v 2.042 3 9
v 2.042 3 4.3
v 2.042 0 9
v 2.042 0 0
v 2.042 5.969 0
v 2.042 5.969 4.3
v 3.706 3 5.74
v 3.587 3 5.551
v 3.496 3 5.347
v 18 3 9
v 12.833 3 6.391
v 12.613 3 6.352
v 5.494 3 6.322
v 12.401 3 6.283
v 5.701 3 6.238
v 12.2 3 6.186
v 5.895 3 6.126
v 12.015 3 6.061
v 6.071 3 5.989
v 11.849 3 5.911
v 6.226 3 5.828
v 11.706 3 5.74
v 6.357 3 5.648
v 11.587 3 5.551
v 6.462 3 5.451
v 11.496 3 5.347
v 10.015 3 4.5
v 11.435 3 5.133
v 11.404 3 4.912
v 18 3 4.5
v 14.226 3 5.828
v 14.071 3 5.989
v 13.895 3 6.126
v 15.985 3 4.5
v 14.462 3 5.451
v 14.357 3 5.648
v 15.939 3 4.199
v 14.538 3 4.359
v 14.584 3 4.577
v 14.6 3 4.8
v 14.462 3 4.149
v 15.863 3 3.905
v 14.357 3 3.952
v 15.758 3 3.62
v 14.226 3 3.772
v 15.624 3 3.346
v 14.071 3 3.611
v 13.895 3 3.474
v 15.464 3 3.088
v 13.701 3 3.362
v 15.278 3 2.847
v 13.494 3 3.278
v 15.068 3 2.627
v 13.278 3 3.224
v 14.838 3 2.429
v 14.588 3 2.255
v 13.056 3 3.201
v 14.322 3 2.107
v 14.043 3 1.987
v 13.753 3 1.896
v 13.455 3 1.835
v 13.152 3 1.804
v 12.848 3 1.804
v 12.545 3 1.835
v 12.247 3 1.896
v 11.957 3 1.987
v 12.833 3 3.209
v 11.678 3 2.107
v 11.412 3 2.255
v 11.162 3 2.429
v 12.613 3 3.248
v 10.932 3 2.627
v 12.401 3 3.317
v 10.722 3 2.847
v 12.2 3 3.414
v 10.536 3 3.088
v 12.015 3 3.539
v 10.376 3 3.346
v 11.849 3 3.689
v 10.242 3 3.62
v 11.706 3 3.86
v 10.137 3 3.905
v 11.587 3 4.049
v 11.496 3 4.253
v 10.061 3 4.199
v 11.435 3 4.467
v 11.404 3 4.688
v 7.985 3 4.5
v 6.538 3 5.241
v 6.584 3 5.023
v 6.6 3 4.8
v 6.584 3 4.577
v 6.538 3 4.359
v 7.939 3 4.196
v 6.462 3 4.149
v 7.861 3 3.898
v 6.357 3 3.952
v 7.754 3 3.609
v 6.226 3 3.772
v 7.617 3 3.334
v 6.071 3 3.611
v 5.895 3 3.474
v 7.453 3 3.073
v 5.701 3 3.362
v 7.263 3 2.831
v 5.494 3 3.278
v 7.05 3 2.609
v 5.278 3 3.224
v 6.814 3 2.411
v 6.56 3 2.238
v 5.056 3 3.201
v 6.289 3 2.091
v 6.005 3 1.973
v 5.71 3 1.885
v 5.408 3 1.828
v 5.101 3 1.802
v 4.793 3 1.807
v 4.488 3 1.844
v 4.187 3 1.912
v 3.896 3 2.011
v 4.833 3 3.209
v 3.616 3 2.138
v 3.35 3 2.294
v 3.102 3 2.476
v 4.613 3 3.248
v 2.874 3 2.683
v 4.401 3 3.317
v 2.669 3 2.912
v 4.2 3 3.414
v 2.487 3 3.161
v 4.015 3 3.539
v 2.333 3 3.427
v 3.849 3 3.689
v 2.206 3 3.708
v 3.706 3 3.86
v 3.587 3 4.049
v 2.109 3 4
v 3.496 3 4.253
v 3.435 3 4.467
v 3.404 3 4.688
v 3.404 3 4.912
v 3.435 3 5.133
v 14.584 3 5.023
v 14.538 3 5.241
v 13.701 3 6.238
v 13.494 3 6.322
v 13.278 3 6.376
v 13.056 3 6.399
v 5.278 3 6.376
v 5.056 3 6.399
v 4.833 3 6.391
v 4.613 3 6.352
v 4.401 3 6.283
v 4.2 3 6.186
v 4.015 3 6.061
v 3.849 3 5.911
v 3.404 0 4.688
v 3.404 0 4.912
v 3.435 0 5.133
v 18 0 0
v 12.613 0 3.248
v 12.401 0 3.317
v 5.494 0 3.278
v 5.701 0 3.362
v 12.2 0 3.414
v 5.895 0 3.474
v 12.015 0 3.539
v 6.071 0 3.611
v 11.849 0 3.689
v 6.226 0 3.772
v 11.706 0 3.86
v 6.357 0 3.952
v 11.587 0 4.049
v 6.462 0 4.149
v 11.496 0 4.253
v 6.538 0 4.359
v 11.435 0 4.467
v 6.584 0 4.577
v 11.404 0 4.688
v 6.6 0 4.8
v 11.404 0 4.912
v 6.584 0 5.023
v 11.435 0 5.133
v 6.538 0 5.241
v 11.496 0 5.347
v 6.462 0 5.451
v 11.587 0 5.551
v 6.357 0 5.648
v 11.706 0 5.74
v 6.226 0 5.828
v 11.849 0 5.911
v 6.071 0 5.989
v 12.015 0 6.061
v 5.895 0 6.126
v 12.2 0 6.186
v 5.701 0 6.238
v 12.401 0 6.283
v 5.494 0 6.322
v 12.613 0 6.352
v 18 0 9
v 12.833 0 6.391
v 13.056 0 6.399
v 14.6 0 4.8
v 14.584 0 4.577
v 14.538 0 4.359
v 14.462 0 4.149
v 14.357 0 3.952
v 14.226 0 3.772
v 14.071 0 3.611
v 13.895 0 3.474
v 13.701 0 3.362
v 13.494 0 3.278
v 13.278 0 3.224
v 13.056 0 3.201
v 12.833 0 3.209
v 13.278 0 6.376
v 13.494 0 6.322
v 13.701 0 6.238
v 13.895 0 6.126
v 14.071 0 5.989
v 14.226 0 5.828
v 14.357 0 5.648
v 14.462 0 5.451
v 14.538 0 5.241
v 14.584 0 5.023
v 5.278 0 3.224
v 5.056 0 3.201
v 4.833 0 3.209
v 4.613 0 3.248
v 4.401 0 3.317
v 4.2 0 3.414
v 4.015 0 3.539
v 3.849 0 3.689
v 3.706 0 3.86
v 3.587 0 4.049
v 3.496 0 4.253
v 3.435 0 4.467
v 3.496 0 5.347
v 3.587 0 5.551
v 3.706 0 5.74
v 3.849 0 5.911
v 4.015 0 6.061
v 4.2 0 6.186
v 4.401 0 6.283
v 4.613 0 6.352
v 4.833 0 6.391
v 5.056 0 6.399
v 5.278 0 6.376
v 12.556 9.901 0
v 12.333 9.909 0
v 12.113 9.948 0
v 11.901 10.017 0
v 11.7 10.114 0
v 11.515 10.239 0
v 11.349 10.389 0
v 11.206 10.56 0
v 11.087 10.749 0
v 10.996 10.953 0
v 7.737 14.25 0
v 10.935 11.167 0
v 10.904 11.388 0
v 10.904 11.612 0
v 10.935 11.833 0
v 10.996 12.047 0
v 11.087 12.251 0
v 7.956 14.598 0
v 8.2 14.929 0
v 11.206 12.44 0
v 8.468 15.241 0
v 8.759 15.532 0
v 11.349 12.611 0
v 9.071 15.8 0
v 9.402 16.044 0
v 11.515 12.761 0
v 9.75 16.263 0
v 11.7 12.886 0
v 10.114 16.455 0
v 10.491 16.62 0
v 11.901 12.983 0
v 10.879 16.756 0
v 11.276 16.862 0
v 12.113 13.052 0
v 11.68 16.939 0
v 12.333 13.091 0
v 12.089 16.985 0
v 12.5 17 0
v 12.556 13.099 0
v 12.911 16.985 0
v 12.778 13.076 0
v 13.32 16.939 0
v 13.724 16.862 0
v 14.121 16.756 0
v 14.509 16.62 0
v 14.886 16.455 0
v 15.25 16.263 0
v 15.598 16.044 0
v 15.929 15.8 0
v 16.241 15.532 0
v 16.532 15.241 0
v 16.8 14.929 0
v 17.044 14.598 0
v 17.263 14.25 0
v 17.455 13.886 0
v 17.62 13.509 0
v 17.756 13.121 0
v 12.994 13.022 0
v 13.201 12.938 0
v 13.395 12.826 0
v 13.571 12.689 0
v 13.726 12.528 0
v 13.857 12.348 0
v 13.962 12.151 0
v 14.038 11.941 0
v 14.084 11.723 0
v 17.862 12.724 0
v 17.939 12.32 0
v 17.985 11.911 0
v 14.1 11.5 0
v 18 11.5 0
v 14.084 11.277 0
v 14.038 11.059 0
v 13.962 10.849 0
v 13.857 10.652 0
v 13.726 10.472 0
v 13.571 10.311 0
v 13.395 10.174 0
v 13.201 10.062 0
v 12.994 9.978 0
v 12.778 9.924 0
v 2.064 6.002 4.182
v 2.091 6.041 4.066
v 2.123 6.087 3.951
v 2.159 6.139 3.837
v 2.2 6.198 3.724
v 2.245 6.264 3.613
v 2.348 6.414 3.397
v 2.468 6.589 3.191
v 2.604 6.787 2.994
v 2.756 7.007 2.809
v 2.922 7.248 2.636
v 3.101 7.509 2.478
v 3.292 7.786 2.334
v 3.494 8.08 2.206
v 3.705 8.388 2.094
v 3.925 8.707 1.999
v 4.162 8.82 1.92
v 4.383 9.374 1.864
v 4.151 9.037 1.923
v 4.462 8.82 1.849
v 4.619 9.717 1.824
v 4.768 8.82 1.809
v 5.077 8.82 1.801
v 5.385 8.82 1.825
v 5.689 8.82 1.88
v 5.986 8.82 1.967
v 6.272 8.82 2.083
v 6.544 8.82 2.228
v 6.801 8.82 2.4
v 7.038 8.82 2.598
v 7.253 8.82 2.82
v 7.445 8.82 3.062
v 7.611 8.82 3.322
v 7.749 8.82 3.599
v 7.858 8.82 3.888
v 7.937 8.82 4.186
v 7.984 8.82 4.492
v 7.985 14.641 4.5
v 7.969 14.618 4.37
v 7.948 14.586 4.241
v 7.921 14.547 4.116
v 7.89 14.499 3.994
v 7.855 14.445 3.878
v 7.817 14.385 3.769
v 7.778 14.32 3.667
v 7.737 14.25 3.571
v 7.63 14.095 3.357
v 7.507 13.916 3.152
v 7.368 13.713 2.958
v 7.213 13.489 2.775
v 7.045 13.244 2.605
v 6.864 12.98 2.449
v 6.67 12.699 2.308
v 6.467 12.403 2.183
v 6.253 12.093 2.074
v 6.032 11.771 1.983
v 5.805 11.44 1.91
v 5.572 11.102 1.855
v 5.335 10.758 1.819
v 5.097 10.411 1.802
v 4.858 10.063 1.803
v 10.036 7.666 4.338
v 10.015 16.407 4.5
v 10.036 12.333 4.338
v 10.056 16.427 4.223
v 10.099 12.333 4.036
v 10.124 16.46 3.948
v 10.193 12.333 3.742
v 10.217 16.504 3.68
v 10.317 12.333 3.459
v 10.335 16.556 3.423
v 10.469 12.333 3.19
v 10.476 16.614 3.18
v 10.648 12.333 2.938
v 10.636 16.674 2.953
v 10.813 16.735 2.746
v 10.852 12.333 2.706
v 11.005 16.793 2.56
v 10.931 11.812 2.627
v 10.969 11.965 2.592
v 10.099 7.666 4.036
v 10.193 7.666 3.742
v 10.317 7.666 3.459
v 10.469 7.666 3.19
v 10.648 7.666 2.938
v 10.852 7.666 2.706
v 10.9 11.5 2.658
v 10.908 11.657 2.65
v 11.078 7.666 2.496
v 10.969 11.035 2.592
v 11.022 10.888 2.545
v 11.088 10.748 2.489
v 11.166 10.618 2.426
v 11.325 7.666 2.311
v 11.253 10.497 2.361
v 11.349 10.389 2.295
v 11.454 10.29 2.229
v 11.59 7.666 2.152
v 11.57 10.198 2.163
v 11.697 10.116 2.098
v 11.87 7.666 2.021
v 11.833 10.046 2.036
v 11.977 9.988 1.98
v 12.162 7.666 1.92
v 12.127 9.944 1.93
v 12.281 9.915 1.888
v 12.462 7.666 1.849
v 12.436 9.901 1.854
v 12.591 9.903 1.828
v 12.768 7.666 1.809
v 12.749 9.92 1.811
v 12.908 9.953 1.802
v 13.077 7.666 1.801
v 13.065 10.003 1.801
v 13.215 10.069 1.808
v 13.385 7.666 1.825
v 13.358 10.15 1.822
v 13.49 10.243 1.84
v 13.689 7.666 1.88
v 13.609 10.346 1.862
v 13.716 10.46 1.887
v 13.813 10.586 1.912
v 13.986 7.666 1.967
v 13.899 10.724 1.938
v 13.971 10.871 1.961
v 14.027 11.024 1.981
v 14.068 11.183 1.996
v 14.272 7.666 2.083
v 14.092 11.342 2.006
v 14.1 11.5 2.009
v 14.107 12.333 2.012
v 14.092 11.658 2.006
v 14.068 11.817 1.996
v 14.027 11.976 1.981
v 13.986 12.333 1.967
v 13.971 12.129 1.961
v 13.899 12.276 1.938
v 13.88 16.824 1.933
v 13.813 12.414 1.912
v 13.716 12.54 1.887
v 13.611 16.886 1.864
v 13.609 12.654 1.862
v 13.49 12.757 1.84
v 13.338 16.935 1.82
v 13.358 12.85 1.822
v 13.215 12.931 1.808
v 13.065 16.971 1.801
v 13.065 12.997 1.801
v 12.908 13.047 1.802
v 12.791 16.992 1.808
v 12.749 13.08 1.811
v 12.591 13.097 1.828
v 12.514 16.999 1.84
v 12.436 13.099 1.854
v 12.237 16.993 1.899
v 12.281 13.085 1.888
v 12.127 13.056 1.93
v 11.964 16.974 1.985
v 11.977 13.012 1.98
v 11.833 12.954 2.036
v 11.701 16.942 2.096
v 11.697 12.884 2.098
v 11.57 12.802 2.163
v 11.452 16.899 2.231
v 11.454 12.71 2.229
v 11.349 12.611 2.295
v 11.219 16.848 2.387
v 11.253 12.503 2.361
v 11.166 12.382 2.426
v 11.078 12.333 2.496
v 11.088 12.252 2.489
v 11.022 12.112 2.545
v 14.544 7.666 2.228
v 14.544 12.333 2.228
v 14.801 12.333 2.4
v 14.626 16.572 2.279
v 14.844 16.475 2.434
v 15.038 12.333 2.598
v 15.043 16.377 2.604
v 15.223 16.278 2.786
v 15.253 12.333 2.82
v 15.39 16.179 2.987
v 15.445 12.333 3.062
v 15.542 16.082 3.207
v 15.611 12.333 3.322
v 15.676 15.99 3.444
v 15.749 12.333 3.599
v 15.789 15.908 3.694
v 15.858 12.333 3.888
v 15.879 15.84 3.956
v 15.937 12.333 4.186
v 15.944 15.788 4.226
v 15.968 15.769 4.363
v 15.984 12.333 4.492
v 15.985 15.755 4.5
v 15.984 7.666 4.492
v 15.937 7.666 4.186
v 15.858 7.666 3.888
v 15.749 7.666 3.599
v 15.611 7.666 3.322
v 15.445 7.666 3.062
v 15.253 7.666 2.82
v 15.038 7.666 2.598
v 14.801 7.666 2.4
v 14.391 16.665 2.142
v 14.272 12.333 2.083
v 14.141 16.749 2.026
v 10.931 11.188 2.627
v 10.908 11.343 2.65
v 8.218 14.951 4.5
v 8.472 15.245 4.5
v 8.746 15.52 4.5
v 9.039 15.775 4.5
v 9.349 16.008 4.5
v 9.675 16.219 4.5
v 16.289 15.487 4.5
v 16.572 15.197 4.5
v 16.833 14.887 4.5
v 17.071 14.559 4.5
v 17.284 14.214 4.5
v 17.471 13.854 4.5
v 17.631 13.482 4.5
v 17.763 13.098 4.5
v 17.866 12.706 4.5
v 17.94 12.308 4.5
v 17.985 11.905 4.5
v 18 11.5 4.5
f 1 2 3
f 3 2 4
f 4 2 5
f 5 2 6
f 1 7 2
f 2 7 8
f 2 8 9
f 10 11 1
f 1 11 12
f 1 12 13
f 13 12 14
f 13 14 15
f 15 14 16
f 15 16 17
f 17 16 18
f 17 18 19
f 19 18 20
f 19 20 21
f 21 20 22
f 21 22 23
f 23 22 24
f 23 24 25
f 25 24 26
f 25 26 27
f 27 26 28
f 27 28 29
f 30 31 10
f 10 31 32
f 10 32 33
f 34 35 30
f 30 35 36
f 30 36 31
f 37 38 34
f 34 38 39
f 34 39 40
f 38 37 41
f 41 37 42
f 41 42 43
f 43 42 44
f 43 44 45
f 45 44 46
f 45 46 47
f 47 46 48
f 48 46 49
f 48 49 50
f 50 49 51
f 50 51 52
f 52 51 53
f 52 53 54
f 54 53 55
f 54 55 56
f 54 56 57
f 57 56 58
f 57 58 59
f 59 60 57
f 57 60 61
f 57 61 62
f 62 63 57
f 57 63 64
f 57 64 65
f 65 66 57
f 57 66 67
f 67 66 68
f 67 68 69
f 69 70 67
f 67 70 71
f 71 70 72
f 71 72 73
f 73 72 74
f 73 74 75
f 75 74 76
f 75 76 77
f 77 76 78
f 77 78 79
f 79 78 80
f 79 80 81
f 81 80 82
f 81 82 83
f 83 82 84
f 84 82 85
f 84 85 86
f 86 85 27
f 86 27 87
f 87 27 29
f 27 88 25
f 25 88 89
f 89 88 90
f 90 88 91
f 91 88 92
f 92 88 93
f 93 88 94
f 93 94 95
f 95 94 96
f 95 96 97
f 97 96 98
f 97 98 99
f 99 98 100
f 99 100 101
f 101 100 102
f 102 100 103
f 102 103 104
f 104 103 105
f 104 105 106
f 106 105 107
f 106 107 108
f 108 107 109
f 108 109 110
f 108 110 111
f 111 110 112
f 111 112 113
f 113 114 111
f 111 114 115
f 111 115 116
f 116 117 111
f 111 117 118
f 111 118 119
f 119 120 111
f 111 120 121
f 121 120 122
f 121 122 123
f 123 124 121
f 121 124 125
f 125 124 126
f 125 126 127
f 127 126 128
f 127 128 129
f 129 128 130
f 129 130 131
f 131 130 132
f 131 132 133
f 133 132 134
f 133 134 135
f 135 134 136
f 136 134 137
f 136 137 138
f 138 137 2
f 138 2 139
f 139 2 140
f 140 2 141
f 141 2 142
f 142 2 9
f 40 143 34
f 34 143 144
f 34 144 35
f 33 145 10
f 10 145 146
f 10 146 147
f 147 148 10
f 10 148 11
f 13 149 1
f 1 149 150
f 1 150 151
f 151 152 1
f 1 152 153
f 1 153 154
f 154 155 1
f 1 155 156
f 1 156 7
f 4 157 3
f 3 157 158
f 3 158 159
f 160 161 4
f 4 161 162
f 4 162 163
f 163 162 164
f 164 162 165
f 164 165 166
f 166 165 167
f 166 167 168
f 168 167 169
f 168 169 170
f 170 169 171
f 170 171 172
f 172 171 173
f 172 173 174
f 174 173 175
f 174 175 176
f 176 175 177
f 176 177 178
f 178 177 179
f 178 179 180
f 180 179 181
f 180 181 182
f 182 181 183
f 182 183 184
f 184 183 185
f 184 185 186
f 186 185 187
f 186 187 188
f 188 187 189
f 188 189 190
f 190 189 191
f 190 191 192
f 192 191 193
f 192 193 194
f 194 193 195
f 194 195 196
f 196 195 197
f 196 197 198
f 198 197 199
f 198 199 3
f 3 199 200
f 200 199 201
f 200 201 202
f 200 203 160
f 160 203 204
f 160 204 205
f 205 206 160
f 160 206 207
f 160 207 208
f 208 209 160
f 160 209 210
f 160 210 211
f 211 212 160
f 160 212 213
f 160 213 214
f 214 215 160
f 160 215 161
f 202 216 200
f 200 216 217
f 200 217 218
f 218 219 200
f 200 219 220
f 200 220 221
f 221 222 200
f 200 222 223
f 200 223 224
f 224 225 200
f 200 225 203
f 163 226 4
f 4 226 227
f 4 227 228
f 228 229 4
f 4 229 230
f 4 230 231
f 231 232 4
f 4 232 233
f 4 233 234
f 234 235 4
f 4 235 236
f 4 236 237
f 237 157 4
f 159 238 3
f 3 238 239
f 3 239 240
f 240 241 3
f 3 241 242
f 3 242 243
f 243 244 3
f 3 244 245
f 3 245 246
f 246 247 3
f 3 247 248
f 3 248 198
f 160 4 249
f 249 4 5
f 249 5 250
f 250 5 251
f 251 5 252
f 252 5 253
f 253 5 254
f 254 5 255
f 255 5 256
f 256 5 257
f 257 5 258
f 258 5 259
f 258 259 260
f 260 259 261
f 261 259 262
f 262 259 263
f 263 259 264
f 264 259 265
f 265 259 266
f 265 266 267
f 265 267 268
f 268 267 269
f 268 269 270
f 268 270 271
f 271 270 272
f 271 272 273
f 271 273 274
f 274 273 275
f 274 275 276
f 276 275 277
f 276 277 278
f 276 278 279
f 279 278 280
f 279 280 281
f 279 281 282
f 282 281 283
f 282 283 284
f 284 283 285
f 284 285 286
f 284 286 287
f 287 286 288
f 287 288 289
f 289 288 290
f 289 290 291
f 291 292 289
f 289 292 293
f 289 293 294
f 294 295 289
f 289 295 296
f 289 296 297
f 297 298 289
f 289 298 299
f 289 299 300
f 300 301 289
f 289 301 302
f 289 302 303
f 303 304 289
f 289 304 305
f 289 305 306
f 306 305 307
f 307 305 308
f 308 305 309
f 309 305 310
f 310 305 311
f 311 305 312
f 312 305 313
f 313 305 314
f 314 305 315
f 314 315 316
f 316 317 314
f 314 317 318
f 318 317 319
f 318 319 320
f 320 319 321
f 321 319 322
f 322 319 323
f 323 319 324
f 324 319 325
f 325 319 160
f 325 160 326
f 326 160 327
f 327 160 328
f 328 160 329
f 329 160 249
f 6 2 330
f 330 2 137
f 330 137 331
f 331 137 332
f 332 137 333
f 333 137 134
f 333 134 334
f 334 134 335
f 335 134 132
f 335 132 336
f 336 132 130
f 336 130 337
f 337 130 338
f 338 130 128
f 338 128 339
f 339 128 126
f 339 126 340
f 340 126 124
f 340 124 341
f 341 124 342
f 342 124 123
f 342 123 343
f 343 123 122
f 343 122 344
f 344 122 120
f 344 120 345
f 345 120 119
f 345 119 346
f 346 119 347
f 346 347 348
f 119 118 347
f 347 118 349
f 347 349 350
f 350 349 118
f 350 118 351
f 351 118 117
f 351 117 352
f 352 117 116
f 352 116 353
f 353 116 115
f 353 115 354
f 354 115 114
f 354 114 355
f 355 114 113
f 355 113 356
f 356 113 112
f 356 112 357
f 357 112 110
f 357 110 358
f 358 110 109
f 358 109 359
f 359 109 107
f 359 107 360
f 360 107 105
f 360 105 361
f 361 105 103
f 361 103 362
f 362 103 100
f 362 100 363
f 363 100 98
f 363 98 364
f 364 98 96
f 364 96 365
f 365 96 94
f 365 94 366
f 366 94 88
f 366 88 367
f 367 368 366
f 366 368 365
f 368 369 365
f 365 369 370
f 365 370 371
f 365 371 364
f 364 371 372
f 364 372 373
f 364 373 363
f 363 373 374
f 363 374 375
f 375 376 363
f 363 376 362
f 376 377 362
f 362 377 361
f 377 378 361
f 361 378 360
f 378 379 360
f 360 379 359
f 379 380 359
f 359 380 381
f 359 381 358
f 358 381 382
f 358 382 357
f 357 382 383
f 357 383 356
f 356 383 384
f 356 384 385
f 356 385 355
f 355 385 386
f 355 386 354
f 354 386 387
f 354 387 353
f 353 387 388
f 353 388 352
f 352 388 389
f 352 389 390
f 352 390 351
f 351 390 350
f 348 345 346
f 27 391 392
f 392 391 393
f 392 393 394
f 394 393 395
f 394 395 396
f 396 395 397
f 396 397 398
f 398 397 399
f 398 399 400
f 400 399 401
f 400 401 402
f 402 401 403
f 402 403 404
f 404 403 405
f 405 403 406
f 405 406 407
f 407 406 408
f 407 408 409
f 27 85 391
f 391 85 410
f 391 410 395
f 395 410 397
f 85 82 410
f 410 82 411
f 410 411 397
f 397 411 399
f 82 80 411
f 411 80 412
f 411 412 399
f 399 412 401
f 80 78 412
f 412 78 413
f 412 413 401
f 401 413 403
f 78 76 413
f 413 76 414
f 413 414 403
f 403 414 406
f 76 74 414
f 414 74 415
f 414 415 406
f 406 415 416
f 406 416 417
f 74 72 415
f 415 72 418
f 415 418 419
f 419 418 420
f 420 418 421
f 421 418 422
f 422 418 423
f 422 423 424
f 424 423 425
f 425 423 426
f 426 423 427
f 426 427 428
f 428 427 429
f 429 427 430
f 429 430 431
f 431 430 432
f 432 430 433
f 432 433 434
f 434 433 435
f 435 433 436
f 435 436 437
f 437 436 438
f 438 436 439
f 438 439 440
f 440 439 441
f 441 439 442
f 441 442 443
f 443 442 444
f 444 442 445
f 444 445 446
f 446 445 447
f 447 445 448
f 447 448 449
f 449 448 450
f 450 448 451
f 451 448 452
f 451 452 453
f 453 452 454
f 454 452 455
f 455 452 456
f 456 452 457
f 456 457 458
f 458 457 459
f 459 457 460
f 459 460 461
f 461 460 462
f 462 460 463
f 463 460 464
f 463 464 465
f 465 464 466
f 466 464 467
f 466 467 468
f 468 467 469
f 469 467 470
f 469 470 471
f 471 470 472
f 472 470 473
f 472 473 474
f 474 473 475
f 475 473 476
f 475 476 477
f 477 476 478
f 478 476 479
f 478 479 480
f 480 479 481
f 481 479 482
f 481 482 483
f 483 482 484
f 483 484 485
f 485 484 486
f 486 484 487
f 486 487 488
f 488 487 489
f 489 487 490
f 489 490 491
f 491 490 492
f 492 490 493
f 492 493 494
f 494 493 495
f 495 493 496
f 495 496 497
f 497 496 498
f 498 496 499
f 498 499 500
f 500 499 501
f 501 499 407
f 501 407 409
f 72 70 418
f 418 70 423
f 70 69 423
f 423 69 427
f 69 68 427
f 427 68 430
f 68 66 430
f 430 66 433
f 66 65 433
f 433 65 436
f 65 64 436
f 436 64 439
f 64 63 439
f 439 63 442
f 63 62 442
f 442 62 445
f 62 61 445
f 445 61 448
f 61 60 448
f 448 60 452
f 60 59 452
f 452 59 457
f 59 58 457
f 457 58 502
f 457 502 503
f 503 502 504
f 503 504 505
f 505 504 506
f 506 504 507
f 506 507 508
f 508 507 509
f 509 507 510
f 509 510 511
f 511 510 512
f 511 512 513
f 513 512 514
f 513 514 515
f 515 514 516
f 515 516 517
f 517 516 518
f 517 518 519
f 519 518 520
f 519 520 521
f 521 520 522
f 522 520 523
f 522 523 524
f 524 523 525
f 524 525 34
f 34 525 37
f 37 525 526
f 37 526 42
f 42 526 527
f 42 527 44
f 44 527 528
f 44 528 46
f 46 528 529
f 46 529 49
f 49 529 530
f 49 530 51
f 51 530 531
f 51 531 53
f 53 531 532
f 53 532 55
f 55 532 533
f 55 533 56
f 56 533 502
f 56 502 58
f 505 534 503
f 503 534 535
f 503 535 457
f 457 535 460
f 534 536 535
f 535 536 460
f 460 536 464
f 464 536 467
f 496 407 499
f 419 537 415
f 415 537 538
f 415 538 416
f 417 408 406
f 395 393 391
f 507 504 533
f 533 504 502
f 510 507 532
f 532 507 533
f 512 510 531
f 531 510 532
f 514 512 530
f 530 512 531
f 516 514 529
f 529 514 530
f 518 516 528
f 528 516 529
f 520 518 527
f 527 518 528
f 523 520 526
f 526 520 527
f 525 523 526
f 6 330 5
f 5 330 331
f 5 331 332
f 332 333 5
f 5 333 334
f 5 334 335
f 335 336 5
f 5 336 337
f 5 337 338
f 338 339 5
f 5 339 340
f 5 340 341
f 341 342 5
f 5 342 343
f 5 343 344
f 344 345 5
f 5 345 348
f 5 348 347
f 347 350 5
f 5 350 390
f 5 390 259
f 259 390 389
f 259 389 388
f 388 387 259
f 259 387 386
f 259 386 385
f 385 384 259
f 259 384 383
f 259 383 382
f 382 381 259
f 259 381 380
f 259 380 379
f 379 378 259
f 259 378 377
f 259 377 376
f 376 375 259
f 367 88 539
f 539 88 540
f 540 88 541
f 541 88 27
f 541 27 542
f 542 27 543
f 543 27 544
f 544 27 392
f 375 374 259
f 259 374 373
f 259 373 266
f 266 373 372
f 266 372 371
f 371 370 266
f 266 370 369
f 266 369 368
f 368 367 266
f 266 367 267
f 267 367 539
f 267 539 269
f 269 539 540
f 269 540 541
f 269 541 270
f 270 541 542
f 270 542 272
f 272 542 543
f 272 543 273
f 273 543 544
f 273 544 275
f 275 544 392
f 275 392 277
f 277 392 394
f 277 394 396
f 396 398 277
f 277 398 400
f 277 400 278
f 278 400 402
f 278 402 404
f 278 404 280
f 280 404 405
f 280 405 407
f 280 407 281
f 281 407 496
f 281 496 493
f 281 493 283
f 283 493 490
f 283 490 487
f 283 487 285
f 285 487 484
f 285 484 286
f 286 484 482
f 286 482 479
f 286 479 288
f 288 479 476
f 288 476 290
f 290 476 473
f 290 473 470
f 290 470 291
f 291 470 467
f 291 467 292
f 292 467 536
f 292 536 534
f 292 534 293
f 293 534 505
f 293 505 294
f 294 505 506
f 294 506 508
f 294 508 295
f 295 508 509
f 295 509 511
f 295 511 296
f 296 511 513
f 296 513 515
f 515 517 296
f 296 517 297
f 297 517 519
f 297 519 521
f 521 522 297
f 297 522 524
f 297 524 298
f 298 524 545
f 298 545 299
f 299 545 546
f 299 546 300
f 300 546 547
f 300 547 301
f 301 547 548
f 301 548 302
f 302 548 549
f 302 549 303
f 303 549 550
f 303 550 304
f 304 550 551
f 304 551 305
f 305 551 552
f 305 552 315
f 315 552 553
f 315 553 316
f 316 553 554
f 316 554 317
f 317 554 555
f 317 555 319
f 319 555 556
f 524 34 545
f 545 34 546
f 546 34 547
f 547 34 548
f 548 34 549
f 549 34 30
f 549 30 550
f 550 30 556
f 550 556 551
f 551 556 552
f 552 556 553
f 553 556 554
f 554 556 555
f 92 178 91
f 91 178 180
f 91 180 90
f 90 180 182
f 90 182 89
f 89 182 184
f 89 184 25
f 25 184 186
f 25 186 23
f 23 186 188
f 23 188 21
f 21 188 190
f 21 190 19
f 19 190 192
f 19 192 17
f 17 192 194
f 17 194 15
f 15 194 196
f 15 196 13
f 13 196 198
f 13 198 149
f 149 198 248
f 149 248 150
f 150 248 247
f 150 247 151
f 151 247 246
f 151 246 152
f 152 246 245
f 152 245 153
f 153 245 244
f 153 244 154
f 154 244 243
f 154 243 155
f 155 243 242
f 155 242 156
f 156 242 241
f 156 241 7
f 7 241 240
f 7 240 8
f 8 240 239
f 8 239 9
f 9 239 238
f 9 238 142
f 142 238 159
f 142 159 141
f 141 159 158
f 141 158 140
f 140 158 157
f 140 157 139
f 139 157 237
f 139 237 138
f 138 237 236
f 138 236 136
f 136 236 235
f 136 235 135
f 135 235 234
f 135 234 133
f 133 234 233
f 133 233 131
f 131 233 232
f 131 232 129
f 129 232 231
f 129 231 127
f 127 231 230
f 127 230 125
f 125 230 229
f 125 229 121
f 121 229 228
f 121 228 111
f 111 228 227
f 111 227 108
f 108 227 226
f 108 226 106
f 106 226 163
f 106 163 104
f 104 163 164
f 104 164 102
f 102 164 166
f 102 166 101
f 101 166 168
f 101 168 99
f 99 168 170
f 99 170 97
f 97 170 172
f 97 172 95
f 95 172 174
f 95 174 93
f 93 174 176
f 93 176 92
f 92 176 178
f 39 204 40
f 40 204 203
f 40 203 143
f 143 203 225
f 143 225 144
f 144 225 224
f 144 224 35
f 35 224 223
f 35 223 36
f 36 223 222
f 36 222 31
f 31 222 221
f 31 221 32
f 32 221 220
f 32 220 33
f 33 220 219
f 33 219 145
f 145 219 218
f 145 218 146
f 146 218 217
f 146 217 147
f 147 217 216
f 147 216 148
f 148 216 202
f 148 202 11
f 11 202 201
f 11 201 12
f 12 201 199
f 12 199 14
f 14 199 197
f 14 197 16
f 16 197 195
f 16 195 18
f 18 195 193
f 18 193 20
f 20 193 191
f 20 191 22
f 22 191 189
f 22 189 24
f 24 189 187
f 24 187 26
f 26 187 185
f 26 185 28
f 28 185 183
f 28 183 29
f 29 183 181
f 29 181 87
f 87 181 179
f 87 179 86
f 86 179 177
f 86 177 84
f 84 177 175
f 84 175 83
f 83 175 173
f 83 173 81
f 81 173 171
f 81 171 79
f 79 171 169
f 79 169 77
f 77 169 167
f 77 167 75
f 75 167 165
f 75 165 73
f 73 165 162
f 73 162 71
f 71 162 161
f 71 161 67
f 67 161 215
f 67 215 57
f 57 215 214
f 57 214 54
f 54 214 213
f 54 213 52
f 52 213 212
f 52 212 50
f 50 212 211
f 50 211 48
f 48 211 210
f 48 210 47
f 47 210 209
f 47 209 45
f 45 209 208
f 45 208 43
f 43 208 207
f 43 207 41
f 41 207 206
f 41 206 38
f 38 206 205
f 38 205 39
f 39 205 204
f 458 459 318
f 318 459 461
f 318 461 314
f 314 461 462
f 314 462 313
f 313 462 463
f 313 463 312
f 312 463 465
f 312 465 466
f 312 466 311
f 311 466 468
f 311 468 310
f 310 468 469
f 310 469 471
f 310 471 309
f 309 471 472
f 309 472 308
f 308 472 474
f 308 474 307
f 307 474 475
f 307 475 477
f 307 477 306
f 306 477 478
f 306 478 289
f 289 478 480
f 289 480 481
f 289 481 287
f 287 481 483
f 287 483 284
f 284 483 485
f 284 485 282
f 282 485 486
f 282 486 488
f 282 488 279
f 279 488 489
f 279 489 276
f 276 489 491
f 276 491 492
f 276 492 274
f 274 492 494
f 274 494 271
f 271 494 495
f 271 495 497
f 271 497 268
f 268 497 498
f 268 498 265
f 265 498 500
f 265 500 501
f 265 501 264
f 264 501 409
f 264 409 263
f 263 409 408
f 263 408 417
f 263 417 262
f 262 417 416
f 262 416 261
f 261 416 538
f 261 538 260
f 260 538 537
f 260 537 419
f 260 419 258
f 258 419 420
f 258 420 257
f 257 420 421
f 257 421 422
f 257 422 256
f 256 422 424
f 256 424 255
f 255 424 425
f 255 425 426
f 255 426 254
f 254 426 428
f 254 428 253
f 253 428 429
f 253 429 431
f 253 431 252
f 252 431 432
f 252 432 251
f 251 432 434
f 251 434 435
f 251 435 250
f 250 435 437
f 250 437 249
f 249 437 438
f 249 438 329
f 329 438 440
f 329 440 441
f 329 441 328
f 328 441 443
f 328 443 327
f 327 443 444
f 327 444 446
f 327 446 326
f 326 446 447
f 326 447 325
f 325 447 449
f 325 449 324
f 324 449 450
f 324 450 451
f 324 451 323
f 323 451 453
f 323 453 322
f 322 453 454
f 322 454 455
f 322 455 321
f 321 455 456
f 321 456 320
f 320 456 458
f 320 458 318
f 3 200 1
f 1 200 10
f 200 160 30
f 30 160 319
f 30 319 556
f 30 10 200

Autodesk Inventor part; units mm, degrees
ref_plane "YZ Plane" through (0, 0, 0) normal (1, 0, 0) x (0, 1, 0)
ref_plane "XZ Plane" through (0, 0, 0) normal (0, 1, 0) x (-1, 0, 0)
ref_plane "XY Plane" through (0, 0, 0) normal (0, 0, 1) x (1, 0, 0)
sketch "Sketch1" plane through (0, 0, 0) normal (0, 0, 1) x (1, 0, 0)
  circle A0 centre (12.5, 11.5) radius 1.6
  line L0 (0, 0) -> (18, 0)
  line L1 (0, 0) -> (0, 3)
  arc A1 (18, 11.5) -> (7.7369, 14.25) centre (12.5, 11.5) ccw
  line L2 (12.5, 11.5) -> (7.7369, 14.25) construction
  line L3 (12.5, 11.5) -> (18, 11.5) construction
  line L4 (7.7369, 14.25) -> (0, 3)
  line L5 (18, 11.5) -> (18, 0)
  dimension "d17" = 3
  dimension "d19" = 11.5
  dimension "d23" = 90
  dimension "d25" = 12.5
  dimension "d31" = 5.5
  dimension "d32" = 150
  dimension "d49" = 3.2
  dimension "d51" = 18
extrude "Extrusion1" add sketch "Sketch1" along normal blind 4.5
sketch "Sketch4" plane through (0, 0, 4.5) normal (0, 0, 1) x (1, 0, 0)
  line L0 (0, 3) -> (0, 0) projected
  line L1 (18, 0) -> (18, 3)
  line L2 (0, 0) -> (18, 0)
  line L3 (18, 0) -> (18, 3)
  line L4 (18, 3) -> (0, 3)
  line L5 (0, 3) -> (0, 0)
  line L6 (18, 0) -> (18, 11.5) projected
extrude "Extrusion2" add sketch "Sketch4" along normal blind 4.5
sketch "Sketch5" plane through (0, 0, 0) normal (0, -1, 0) x (1, 0, 0)
  circle A0 centre (5, 4.8) radius 1.6
  circle A1 centre (13, 4.8) radius 1.6
  line L0 (0, 0) -> (18, 0) projected
  line L1 (0, 4.5) -> (0, 9) projected
  point P0 (20.0001, 0)
  dimension "d13" = 3.2
  dimension "d14" = 3.2
  dimension "d38" = 4.8
  dimension "d39" = 4.8
  dimension "d50" = 8
  dimension "d52" = 5
extrude "Extrusion3" cut sketch "Sketch5" against normal through all
sketch "Sketch6" plane through (0, 3, 9) normal (0, 1, 0) x (1, 0, 0)
  circle A0 centre (5, 4.2) radius 1.6 projected
  circle A1 centre (5, 4.2) radius 3
  circle A2 centre (13, 4.2) radius 1.6 projected
  circle A3 centre (13, 4.2) radius 3
  line L0 (0, 9) -> (18, 9) projected
  point P0 (20.0001, 9)
  dimension "d34" = 6
  dimension "d35" = 6
  dimension "d40" = 4.8
  dimension "d41" = 4.8
extrude "Extrusion4" cut sketch "Sketch6" along normal up to next
sketch "Sketch7" plane through (0, 0, 0) normal (0, -1, 0) x (1, 0, 0)
  line L0 (0, 0) -> (0, 9) projected
  line L1 (2.042, 0) -> (0, 0)
  line L2 (0, 0) -> (0, 9)
  line L3 (0, 9) -> (2.042, 9)
  line L4 (2.042, 9) -> (2.042, 0)
extrude "Extrusion5" cut sketch "Sketch7" against normal up to next
properties part number "lower_deck_shaft_mount_v4_printing"
